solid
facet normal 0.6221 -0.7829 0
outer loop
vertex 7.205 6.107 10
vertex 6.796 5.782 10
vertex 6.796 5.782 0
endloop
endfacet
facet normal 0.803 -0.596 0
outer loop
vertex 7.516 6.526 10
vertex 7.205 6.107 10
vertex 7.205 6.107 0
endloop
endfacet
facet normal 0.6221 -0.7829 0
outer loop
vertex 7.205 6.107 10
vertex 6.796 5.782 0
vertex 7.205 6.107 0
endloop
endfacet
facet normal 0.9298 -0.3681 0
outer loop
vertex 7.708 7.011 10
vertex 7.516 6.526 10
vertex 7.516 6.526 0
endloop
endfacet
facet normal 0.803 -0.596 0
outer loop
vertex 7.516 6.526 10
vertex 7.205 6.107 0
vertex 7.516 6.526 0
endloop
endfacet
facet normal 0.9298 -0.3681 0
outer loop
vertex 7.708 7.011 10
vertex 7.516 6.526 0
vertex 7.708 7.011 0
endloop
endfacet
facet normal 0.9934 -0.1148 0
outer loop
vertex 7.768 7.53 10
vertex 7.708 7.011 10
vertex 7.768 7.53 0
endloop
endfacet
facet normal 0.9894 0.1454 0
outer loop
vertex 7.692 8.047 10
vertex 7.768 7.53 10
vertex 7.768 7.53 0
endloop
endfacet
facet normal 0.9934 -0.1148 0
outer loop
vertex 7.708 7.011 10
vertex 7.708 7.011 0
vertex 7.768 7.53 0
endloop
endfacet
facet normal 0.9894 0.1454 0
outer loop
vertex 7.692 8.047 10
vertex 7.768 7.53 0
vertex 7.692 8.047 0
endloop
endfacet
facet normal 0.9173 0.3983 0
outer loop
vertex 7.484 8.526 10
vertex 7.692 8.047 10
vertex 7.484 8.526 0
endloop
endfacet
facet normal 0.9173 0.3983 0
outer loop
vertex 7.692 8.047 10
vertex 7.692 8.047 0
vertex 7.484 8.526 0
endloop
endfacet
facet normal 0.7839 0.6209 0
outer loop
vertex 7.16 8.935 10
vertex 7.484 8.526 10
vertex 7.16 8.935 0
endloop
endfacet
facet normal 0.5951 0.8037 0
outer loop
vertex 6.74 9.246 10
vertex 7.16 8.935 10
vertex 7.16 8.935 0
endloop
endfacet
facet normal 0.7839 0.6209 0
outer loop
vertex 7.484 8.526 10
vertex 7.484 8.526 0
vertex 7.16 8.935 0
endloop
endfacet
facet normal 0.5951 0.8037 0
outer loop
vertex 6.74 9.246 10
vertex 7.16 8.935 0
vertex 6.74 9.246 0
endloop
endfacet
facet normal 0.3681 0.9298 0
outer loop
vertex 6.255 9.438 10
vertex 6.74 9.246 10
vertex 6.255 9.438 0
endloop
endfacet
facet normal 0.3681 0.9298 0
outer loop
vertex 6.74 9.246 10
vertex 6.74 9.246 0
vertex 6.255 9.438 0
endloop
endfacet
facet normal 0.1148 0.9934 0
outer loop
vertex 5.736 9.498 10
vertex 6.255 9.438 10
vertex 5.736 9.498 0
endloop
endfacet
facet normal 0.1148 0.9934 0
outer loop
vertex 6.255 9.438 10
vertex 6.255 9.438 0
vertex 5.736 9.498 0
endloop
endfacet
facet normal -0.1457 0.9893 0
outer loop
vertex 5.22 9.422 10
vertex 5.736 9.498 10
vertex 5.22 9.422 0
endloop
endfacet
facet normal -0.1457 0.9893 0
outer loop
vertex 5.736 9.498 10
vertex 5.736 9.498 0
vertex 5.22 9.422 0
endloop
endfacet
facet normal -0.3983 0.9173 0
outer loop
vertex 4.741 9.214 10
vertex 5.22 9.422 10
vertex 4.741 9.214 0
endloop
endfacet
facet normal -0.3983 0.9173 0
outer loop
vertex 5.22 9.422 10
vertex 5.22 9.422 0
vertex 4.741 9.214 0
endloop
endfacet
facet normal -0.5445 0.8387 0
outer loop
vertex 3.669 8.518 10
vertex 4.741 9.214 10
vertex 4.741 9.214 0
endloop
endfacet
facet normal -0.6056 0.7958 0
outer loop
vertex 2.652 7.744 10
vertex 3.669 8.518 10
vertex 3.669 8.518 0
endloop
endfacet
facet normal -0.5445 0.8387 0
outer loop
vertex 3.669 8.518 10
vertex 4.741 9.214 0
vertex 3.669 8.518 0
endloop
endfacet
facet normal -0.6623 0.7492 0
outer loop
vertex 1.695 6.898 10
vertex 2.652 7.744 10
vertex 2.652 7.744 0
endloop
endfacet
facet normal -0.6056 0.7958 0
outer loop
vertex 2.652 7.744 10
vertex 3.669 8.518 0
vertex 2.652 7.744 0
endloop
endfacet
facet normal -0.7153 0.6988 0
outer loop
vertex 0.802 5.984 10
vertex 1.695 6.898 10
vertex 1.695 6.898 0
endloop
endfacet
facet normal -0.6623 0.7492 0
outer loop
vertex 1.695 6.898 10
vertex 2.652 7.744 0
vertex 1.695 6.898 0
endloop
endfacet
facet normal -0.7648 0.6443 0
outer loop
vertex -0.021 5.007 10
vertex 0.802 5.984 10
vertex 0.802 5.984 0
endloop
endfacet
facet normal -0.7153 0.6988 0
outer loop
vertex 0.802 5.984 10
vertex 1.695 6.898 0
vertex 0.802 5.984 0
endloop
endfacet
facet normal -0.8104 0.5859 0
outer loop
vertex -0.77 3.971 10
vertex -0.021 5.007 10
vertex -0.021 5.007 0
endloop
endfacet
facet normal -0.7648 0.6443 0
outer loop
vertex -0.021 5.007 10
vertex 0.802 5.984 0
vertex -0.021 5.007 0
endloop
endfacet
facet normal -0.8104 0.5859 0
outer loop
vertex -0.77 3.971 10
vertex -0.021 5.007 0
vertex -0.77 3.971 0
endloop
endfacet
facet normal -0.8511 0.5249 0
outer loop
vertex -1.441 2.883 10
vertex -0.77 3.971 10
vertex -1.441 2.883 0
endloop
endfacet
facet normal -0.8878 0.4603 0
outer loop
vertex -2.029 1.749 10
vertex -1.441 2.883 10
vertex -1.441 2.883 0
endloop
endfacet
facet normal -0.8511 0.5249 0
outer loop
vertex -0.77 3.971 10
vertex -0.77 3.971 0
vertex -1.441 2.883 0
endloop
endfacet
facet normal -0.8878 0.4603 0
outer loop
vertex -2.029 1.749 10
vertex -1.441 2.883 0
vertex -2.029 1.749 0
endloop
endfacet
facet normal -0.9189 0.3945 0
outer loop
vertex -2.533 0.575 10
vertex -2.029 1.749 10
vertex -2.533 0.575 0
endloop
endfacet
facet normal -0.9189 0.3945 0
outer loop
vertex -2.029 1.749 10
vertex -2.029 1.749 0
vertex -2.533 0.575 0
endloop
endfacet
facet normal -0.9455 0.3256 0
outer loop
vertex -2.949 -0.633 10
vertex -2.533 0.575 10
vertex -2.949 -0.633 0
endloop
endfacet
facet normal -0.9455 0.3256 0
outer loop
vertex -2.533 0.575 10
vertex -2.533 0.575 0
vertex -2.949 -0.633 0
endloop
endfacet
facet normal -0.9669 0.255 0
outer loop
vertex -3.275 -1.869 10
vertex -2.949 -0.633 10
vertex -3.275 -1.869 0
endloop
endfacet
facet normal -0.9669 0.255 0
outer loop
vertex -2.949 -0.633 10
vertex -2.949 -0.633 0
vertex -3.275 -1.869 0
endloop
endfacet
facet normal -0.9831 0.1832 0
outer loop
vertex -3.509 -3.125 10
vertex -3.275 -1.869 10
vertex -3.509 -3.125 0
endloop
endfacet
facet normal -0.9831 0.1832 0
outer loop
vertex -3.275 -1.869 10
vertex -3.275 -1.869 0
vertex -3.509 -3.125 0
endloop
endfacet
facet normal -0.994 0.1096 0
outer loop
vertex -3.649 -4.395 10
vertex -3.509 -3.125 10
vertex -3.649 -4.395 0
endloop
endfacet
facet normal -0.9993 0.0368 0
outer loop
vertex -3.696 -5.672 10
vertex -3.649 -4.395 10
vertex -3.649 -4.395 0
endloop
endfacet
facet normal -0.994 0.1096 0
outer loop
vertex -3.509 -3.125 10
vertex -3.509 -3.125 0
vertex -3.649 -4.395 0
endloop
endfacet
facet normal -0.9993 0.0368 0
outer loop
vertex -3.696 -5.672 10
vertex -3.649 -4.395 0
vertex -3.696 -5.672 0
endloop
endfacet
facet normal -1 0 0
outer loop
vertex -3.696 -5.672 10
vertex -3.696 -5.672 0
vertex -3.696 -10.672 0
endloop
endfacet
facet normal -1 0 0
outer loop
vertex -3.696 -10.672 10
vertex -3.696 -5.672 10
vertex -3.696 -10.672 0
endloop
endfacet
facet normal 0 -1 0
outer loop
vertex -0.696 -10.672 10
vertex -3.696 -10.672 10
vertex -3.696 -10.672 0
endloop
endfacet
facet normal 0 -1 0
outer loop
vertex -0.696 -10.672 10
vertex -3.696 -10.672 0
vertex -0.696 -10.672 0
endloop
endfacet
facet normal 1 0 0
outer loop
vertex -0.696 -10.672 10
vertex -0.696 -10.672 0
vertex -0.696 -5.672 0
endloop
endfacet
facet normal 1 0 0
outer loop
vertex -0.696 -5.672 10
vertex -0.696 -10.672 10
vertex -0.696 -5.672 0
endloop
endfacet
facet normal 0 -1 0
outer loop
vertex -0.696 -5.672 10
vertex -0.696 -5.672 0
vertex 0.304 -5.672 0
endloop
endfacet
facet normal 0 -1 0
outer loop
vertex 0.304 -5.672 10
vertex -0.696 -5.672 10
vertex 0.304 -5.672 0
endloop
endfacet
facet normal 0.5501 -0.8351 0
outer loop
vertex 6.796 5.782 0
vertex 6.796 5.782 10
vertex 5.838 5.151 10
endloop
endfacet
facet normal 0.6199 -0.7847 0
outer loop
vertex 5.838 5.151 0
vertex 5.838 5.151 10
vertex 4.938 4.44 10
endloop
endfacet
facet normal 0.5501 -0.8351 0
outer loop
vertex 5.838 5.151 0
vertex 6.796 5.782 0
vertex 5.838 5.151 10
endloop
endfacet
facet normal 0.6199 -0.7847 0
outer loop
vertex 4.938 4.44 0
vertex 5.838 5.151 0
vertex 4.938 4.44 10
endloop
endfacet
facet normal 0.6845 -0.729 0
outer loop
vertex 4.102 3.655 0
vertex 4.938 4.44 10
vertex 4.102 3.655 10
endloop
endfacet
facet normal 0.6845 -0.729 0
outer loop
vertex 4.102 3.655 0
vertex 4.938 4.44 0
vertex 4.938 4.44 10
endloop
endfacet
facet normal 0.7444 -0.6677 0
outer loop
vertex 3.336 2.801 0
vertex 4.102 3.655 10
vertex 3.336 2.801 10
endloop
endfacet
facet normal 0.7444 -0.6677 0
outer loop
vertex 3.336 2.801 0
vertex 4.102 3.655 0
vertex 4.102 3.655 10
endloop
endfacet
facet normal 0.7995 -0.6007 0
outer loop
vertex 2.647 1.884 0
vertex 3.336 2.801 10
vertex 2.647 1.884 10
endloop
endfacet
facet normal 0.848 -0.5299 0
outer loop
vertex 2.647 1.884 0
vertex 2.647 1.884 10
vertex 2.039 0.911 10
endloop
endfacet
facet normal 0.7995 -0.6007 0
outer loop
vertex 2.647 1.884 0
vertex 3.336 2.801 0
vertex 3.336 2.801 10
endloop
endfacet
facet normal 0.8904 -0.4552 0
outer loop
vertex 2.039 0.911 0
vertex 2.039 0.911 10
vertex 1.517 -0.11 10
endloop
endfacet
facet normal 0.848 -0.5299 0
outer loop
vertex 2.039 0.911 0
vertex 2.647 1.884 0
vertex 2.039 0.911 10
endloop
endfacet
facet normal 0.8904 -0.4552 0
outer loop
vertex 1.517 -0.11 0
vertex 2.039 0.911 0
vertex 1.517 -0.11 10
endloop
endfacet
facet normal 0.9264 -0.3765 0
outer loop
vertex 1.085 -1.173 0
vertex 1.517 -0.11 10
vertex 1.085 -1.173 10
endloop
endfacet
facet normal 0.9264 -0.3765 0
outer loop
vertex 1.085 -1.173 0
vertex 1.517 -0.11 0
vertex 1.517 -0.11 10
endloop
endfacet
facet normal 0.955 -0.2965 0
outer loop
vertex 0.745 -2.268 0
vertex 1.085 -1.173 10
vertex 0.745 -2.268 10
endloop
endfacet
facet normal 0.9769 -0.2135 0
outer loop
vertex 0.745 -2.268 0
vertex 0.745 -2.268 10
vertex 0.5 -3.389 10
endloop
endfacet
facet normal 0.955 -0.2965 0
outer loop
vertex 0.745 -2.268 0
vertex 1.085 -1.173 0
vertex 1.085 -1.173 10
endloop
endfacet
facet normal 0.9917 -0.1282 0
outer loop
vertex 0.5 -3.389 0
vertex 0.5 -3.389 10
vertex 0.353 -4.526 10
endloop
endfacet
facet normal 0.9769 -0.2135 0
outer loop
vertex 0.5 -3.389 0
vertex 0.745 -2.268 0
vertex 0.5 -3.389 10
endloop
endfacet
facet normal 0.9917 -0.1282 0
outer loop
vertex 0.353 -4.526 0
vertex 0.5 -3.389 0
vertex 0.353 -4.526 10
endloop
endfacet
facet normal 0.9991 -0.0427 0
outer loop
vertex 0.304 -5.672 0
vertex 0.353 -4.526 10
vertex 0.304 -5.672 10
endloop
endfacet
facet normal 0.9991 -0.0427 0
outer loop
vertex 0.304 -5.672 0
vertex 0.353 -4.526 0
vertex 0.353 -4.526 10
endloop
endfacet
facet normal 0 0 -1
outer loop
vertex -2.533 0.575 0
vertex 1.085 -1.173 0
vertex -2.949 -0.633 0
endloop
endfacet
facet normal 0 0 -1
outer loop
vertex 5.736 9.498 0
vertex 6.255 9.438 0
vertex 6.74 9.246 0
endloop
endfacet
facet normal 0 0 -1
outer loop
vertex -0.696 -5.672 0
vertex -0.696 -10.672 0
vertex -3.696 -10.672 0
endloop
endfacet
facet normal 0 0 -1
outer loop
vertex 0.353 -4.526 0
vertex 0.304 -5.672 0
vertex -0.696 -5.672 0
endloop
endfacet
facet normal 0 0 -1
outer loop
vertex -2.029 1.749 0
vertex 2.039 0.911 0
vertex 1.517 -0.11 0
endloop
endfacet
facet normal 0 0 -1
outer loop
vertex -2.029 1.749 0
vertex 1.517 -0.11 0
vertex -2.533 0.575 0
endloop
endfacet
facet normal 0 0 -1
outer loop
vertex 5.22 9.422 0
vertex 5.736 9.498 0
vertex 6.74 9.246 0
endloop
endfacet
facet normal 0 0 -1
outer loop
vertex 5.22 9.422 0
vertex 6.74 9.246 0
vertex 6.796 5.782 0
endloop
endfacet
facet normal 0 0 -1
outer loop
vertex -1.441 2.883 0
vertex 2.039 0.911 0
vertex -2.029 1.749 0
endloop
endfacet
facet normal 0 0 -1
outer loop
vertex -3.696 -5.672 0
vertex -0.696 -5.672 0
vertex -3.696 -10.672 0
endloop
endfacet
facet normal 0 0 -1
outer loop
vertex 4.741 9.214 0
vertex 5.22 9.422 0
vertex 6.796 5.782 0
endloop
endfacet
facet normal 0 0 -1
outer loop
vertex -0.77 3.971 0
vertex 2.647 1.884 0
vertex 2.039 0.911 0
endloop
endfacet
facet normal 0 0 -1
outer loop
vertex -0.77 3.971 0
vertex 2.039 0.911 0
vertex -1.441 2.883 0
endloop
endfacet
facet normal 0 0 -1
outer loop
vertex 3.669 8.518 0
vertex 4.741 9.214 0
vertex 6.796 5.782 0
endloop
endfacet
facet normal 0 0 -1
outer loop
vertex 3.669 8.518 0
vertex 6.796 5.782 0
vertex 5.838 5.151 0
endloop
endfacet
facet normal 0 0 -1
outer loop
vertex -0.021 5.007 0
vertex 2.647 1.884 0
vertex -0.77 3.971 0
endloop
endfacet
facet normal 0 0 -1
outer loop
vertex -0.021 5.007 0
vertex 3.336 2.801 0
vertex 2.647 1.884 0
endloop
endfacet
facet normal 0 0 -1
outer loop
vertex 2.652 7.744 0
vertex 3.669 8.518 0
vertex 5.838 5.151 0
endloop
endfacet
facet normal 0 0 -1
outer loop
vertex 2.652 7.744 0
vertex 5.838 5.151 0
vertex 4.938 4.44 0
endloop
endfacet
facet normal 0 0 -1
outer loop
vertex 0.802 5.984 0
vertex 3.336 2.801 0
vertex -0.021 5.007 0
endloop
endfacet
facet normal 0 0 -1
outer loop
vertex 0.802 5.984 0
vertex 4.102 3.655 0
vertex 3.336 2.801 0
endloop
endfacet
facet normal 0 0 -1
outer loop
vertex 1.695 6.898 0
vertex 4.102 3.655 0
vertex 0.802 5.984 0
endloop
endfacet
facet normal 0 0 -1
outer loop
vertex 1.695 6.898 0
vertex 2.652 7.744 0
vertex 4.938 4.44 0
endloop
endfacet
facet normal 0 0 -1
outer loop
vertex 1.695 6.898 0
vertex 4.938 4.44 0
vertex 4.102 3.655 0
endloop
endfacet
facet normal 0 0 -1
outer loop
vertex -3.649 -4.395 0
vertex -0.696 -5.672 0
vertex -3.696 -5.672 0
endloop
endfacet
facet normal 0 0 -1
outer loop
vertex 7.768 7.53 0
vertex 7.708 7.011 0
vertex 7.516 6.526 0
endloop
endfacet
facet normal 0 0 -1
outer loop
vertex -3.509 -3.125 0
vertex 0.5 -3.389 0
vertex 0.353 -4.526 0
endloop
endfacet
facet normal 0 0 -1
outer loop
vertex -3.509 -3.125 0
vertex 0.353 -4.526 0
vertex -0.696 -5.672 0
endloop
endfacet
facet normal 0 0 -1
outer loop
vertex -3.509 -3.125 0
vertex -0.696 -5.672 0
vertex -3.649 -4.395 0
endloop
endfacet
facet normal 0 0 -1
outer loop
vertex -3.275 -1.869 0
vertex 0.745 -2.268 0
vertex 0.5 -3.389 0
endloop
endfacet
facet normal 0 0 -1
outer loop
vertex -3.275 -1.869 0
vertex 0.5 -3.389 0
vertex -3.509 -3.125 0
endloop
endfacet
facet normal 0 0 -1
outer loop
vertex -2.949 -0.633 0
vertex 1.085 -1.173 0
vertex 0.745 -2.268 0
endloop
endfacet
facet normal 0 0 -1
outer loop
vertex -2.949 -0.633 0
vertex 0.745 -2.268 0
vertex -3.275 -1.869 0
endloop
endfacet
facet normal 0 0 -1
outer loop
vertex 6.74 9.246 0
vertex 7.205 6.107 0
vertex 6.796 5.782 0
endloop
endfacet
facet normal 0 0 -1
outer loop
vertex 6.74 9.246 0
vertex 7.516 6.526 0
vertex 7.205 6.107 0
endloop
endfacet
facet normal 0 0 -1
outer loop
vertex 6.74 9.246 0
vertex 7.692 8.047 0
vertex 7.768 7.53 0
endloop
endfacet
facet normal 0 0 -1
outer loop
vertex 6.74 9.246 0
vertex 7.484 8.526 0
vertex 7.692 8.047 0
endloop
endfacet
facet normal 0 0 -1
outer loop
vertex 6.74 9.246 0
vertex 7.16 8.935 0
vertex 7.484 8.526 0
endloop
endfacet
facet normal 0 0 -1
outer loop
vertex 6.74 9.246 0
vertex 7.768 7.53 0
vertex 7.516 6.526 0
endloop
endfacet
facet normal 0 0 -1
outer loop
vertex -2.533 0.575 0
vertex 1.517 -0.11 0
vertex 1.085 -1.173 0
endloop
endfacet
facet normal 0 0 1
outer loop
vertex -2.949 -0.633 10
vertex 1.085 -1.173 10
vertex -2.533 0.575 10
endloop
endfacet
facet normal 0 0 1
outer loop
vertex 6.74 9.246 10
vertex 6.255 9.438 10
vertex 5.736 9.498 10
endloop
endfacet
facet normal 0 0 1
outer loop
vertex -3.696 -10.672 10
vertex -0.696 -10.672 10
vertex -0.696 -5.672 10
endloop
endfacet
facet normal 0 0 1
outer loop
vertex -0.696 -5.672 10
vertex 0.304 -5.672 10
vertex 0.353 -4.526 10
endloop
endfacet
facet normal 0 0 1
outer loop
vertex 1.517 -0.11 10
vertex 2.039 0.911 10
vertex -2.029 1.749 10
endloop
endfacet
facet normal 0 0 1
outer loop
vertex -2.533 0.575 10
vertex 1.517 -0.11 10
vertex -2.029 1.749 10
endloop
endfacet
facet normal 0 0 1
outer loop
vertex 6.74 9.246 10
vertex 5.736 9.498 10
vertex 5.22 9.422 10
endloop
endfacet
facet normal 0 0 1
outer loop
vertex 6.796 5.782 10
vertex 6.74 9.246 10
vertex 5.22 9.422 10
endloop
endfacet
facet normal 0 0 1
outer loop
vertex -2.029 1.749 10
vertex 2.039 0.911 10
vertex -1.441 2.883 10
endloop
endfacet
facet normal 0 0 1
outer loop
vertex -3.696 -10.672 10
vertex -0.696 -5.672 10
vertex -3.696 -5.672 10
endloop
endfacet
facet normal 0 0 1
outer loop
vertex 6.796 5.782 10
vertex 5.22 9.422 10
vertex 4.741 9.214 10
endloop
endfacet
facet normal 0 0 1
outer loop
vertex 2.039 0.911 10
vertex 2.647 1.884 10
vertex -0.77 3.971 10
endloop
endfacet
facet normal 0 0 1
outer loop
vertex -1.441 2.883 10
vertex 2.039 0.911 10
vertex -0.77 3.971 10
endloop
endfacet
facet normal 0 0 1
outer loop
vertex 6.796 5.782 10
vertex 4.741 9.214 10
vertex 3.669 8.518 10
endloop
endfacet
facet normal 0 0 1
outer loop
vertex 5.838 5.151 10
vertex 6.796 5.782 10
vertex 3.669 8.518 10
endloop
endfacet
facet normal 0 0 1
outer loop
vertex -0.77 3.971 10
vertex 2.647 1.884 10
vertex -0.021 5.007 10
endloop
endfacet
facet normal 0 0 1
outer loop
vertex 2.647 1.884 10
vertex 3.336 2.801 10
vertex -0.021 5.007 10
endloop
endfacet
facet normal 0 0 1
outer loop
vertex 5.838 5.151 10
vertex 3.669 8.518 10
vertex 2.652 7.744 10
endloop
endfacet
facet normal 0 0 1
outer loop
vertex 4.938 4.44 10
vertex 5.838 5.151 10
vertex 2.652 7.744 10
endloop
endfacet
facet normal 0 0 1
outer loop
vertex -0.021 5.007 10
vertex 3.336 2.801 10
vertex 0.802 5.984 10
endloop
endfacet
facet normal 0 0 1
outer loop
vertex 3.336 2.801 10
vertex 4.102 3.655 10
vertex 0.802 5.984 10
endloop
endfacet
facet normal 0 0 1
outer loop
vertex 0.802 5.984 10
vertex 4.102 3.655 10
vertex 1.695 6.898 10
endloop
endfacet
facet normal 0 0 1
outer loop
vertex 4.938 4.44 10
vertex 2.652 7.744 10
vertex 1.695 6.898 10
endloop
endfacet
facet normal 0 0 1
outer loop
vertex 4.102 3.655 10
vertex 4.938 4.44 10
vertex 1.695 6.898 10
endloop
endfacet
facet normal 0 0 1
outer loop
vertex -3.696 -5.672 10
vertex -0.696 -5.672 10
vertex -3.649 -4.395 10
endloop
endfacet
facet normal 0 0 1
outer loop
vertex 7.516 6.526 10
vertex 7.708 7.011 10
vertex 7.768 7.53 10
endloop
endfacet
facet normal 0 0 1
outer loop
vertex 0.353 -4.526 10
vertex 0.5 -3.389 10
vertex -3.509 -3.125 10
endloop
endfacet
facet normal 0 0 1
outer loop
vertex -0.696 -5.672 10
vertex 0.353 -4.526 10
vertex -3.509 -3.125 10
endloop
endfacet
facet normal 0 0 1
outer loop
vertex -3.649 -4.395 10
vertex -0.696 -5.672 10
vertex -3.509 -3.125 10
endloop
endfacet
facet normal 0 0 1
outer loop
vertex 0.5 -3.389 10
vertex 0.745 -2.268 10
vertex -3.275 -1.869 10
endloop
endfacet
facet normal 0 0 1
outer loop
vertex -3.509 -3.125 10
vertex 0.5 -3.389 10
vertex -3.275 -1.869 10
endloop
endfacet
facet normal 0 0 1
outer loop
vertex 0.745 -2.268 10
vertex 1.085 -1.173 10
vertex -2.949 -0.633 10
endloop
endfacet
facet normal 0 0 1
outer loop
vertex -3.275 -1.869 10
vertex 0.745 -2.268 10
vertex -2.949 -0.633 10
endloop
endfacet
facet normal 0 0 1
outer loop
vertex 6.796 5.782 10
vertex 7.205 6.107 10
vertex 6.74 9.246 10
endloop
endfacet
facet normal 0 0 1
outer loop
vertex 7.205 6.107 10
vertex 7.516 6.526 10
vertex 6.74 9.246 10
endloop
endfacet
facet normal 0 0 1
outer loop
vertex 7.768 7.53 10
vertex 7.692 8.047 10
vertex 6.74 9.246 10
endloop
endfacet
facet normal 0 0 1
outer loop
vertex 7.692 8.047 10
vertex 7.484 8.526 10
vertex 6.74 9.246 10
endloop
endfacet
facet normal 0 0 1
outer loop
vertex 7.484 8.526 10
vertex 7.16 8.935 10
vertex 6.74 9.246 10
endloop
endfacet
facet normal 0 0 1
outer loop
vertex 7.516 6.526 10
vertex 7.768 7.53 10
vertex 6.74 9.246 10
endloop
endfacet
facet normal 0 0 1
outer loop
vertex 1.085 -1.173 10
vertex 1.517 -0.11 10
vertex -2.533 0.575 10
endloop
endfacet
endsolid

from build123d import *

# Parameters (mm, degrees)
EXTRUDE_DEPTH = 10


with BuildPart() as part:
    # Sketch → Extrude (new body)
    with BuildSketch(Plane.XY):
        with BuildLine():
            Line((-3.696471, -10.672124), (-0.696471, -10.672124))
            Line((-0.696471, -10.672124), (-0.696471, -5.672124))
            Line((-0.696471, -5.672124), (0.303529, -5.672124))
            ThreePointArc((6.795663, 5.782347), (2.039411, 0.91105), (0.303529, -5.672124))
            ThreePointArc((6.795663, 5.782347), (7.484095, 8.525714), (4.740728, 9.214146))
            ThreePointArc((4.740728, 9.214146), (-1.440512, 2.883392), (-3.696471, -5.672124))
            Line((-3.696471, -5.672124), (-3.696471, -10.672124))
        make_face()
    extrude(amount=EXTRUDE_DEPTH)


solid = part.part
